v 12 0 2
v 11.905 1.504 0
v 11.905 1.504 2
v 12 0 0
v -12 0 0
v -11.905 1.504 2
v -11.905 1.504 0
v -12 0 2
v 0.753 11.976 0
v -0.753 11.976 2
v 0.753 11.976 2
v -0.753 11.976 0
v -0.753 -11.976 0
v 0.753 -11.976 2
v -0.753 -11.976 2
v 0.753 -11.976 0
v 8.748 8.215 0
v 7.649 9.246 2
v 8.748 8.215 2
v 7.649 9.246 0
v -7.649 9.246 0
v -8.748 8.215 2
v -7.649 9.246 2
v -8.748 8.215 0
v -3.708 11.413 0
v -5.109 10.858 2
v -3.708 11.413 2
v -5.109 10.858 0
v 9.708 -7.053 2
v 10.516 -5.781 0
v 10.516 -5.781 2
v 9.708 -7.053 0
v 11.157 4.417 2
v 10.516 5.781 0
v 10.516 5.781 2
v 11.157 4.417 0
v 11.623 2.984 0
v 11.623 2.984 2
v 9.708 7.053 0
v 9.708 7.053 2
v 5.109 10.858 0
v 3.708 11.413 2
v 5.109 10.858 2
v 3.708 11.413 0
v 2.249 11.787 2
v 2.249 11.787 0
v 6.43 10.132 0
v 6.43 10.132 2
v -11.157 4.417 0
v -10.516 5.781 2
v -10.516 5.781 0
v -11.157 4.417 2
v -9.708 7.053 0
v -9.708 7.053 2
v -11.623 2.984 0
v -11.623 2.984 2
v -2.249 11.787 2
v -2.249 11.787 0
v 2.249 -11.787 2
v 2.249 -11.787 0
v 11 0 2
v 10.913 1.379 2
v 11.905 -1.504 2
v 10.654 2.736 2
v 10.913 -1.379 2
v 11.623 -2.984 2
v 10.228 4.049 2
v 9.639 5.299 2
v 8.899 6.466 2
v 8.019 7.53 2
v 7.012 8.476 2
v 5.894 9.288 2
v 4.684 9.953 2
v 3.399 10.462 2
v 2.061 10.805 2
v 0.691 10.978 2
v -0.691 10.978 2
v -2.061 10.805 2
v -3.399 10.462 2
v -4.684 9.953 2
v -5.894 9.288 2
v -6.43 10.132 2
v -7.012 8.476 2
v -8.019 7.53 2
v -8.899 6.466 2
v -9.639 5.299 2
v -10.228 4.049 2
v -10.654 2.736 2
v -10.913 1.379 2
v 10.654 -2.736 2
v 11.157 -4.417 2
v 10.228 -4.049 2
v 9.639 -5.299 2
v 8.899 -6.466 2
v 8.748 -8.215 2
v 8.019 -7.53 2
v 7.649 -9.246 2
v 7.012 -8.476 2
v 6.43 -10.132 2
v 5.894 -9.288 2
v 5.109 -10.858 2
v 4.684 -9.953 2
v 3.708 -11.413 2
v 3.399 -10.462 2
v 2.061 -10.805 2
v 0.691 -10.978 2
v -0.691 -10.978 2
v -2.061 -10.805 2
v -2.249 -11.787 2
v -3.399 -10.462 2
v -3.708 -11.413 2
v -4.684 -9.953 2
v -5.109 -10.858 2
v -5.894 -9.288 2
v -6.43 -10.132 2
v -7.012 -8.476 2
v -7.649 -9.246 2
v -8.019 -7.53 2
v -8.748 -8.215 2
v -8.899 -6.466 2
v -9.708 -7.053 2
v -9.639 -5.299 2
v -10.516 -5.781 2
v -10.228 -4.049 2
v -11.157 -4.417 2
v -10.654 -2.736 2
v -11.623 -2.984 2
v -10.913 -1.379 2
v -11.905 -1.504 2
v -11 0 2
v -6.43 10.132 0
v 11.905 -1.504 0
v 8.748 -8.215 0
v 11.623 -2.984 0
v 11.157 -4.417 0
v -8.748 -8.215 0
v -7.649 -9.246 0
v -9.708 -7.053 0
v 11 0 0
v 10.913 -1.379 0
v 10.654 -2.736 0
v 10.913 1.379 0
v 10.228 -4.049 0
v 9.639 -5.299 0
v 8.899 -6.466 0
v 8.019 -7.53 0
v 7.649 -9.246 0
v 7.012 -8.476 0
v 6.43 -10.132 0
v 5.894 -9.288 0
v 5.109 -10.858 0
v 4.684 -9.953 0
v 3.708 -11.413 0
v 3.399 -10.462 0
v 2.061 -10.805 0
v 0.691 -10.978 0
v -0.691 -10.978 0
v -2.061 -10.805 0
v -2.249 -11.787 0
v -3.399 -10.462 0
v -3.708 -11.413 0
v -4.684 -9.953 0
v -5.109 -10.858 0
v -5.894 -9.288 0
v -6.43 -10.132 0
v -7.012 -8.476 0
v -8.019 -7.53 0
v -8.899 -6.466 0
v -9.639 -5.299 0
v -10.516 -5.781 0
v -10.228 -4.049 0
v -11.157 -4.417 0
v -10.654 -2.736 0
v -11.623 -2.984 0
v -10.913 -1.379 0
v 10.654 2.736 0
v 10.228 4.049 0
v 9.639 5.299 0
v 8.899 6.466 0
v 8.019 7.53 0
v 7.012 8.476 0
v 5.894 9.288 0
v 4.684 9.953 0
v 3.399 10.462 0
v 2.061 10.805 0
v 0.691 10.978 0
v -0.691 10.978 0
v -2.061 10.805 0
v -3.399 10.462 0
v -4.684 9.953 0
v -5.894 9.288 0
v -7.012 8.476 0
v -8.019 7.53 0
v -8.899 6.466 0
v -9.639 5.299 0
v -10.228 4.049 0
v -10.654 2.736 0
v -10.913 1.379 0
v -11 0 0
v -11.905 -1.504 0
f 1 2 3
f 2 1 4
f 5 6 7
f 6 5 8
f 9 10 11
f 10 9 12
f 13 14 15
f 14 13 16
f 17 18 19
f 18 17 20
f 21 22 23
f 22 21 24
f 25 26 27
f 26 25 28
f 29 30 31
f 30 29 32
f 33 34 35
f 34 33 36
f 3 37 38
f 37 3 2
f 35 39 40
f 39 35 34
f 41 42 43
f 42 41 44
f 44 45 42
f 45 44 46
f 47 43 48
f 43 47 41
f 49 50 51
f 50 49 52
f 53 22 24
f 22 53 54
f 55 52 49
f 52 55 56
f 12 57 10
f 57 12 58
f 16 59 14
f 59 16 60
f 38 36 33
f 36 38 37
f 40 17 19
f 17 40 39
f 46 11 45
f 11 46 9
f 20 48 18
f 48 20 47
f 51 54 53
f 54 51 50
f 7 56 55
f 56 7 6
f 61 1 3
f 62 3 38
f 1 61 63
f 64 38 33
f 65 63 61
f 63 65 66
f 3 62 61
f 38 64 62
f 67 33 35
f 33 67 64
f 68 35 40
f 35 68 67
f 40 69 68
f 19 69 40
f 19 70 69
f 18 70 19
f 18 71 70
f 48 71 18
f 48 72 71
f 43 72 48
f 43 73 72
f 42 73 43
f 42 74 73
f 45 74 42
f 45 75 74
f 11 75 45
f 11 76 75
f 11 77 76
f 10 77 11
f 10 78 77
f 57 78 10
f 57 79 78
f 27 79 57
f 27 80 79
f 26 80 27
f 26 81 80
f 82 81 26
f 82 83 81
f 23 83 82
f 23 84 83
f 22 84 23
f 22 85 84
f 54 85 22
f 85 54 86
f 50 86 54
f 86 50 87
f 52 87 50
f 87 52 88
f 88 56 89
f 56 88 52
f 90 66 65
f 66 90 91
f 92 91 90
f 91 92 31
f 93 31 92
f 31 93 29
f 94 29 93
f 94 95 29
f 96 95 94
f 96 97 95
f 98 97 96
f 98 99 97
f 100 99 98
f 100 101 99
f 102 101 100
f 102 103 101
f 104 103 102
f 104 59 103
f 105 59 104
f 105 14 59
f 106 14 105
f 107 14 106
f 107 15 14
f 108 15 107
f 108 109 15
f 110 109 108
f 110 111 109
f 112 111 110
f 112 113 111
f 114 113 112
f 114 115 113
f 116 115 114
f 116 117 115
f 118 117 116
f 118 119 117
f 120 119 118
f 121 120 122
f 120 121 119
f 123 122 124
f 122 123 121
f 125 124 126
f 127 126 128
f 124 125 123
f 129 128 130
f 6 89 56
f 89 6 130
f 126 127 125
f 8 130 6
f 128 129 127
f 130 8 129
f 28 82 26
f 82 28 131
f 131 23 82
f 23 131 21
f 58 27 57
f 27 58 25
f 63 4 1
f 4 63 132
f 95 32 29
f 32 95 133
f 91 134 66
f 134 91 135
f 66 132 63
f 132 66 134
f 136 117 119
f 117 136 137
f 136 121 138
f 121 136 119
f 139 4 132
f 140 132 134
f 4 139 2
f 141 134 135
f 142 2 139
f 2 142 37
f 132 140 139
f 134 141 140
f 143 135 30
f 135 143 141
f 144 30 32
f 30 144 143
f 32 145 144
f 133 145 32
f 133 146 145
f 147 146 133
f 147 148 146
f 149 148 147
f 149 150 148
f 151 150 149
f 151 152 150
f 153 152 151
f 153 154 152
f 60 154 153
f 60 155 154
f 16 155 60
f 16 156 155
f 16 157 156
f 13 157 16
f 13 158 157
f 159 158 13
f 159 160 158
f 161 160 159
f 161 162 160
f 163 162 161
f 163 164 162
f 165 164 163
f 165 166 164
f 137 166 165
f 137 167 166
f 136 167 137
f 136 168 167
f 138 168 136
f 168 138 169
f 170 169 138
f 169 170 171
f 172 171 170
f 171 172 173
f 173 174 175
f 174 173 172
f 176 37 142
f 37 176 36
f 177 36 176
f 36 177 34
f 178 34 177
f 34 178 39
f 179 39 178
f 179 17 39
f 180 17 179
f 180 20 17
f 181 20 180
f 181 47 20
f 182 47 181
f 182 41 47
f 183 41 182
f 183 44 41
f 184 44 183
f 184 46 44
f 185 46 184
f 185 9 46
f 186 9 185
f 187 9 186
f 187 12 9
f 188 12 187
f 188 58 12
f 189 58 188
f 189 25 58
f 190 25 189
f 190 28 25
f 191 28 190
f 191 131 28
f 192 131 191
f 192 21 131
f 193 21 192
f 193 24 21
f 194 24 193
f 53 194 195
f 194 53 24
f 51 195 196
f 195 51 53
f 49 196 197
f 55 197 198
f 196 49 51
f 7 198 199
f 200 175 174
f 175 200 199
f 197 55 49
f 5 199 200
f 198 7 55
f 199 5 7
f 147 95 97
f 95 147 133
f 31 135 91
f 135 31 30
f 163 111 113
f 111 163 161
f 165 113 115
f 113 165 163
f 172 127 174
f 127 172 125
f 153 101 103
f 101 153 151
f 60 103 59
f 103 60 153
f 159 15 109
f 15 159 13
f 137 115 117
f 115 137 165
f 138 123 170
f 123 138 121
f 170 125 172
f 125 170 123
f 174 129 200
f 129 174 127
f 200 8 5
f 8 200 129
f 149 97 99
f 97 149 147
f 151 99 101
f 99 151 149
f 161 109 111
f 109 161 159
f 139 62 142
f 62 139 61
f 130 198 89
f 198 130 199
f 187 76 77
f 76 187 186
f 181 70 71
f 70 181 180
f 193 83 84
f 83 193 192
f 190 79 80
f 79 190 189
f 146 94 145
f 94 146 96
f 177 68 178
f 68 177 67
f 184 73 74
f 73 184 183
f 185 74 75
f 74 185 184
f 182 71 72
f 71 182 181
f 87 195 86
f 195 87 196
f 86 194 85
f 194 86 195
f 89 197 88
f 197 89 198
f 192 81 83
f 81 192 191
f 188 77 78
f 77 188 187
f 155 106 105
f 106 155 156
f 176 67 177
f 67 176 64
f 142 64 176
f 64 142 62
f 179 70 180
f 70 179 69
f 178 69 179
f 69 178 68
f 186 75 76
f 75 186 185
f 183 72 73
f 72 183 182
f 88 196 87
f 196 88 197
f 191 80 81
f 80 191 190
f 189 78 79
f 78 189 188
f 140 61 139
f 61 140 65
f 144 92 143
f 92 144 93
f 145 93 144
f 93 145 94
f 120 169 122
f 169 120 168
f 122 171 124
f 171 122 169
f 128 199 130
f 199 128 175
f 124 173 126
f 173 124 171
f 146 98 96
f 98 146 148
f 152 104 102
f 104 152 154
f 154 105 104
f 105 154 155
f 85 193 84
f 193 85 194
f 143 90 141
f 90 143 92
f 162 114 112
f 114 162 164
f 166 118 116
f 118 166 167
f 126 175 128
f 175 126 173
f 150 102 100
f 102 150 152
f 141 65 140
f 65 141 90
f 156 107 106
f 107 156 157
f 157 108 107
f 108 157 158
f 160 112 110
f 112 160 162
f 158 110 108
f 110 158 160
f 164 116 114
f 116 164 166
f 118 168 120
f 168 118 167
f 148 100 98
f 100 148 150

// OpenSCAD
$fn=50;

difference() {
    cylinder(2,24/2,24/2);
    cylinder(2,22/2,22/2);
}
